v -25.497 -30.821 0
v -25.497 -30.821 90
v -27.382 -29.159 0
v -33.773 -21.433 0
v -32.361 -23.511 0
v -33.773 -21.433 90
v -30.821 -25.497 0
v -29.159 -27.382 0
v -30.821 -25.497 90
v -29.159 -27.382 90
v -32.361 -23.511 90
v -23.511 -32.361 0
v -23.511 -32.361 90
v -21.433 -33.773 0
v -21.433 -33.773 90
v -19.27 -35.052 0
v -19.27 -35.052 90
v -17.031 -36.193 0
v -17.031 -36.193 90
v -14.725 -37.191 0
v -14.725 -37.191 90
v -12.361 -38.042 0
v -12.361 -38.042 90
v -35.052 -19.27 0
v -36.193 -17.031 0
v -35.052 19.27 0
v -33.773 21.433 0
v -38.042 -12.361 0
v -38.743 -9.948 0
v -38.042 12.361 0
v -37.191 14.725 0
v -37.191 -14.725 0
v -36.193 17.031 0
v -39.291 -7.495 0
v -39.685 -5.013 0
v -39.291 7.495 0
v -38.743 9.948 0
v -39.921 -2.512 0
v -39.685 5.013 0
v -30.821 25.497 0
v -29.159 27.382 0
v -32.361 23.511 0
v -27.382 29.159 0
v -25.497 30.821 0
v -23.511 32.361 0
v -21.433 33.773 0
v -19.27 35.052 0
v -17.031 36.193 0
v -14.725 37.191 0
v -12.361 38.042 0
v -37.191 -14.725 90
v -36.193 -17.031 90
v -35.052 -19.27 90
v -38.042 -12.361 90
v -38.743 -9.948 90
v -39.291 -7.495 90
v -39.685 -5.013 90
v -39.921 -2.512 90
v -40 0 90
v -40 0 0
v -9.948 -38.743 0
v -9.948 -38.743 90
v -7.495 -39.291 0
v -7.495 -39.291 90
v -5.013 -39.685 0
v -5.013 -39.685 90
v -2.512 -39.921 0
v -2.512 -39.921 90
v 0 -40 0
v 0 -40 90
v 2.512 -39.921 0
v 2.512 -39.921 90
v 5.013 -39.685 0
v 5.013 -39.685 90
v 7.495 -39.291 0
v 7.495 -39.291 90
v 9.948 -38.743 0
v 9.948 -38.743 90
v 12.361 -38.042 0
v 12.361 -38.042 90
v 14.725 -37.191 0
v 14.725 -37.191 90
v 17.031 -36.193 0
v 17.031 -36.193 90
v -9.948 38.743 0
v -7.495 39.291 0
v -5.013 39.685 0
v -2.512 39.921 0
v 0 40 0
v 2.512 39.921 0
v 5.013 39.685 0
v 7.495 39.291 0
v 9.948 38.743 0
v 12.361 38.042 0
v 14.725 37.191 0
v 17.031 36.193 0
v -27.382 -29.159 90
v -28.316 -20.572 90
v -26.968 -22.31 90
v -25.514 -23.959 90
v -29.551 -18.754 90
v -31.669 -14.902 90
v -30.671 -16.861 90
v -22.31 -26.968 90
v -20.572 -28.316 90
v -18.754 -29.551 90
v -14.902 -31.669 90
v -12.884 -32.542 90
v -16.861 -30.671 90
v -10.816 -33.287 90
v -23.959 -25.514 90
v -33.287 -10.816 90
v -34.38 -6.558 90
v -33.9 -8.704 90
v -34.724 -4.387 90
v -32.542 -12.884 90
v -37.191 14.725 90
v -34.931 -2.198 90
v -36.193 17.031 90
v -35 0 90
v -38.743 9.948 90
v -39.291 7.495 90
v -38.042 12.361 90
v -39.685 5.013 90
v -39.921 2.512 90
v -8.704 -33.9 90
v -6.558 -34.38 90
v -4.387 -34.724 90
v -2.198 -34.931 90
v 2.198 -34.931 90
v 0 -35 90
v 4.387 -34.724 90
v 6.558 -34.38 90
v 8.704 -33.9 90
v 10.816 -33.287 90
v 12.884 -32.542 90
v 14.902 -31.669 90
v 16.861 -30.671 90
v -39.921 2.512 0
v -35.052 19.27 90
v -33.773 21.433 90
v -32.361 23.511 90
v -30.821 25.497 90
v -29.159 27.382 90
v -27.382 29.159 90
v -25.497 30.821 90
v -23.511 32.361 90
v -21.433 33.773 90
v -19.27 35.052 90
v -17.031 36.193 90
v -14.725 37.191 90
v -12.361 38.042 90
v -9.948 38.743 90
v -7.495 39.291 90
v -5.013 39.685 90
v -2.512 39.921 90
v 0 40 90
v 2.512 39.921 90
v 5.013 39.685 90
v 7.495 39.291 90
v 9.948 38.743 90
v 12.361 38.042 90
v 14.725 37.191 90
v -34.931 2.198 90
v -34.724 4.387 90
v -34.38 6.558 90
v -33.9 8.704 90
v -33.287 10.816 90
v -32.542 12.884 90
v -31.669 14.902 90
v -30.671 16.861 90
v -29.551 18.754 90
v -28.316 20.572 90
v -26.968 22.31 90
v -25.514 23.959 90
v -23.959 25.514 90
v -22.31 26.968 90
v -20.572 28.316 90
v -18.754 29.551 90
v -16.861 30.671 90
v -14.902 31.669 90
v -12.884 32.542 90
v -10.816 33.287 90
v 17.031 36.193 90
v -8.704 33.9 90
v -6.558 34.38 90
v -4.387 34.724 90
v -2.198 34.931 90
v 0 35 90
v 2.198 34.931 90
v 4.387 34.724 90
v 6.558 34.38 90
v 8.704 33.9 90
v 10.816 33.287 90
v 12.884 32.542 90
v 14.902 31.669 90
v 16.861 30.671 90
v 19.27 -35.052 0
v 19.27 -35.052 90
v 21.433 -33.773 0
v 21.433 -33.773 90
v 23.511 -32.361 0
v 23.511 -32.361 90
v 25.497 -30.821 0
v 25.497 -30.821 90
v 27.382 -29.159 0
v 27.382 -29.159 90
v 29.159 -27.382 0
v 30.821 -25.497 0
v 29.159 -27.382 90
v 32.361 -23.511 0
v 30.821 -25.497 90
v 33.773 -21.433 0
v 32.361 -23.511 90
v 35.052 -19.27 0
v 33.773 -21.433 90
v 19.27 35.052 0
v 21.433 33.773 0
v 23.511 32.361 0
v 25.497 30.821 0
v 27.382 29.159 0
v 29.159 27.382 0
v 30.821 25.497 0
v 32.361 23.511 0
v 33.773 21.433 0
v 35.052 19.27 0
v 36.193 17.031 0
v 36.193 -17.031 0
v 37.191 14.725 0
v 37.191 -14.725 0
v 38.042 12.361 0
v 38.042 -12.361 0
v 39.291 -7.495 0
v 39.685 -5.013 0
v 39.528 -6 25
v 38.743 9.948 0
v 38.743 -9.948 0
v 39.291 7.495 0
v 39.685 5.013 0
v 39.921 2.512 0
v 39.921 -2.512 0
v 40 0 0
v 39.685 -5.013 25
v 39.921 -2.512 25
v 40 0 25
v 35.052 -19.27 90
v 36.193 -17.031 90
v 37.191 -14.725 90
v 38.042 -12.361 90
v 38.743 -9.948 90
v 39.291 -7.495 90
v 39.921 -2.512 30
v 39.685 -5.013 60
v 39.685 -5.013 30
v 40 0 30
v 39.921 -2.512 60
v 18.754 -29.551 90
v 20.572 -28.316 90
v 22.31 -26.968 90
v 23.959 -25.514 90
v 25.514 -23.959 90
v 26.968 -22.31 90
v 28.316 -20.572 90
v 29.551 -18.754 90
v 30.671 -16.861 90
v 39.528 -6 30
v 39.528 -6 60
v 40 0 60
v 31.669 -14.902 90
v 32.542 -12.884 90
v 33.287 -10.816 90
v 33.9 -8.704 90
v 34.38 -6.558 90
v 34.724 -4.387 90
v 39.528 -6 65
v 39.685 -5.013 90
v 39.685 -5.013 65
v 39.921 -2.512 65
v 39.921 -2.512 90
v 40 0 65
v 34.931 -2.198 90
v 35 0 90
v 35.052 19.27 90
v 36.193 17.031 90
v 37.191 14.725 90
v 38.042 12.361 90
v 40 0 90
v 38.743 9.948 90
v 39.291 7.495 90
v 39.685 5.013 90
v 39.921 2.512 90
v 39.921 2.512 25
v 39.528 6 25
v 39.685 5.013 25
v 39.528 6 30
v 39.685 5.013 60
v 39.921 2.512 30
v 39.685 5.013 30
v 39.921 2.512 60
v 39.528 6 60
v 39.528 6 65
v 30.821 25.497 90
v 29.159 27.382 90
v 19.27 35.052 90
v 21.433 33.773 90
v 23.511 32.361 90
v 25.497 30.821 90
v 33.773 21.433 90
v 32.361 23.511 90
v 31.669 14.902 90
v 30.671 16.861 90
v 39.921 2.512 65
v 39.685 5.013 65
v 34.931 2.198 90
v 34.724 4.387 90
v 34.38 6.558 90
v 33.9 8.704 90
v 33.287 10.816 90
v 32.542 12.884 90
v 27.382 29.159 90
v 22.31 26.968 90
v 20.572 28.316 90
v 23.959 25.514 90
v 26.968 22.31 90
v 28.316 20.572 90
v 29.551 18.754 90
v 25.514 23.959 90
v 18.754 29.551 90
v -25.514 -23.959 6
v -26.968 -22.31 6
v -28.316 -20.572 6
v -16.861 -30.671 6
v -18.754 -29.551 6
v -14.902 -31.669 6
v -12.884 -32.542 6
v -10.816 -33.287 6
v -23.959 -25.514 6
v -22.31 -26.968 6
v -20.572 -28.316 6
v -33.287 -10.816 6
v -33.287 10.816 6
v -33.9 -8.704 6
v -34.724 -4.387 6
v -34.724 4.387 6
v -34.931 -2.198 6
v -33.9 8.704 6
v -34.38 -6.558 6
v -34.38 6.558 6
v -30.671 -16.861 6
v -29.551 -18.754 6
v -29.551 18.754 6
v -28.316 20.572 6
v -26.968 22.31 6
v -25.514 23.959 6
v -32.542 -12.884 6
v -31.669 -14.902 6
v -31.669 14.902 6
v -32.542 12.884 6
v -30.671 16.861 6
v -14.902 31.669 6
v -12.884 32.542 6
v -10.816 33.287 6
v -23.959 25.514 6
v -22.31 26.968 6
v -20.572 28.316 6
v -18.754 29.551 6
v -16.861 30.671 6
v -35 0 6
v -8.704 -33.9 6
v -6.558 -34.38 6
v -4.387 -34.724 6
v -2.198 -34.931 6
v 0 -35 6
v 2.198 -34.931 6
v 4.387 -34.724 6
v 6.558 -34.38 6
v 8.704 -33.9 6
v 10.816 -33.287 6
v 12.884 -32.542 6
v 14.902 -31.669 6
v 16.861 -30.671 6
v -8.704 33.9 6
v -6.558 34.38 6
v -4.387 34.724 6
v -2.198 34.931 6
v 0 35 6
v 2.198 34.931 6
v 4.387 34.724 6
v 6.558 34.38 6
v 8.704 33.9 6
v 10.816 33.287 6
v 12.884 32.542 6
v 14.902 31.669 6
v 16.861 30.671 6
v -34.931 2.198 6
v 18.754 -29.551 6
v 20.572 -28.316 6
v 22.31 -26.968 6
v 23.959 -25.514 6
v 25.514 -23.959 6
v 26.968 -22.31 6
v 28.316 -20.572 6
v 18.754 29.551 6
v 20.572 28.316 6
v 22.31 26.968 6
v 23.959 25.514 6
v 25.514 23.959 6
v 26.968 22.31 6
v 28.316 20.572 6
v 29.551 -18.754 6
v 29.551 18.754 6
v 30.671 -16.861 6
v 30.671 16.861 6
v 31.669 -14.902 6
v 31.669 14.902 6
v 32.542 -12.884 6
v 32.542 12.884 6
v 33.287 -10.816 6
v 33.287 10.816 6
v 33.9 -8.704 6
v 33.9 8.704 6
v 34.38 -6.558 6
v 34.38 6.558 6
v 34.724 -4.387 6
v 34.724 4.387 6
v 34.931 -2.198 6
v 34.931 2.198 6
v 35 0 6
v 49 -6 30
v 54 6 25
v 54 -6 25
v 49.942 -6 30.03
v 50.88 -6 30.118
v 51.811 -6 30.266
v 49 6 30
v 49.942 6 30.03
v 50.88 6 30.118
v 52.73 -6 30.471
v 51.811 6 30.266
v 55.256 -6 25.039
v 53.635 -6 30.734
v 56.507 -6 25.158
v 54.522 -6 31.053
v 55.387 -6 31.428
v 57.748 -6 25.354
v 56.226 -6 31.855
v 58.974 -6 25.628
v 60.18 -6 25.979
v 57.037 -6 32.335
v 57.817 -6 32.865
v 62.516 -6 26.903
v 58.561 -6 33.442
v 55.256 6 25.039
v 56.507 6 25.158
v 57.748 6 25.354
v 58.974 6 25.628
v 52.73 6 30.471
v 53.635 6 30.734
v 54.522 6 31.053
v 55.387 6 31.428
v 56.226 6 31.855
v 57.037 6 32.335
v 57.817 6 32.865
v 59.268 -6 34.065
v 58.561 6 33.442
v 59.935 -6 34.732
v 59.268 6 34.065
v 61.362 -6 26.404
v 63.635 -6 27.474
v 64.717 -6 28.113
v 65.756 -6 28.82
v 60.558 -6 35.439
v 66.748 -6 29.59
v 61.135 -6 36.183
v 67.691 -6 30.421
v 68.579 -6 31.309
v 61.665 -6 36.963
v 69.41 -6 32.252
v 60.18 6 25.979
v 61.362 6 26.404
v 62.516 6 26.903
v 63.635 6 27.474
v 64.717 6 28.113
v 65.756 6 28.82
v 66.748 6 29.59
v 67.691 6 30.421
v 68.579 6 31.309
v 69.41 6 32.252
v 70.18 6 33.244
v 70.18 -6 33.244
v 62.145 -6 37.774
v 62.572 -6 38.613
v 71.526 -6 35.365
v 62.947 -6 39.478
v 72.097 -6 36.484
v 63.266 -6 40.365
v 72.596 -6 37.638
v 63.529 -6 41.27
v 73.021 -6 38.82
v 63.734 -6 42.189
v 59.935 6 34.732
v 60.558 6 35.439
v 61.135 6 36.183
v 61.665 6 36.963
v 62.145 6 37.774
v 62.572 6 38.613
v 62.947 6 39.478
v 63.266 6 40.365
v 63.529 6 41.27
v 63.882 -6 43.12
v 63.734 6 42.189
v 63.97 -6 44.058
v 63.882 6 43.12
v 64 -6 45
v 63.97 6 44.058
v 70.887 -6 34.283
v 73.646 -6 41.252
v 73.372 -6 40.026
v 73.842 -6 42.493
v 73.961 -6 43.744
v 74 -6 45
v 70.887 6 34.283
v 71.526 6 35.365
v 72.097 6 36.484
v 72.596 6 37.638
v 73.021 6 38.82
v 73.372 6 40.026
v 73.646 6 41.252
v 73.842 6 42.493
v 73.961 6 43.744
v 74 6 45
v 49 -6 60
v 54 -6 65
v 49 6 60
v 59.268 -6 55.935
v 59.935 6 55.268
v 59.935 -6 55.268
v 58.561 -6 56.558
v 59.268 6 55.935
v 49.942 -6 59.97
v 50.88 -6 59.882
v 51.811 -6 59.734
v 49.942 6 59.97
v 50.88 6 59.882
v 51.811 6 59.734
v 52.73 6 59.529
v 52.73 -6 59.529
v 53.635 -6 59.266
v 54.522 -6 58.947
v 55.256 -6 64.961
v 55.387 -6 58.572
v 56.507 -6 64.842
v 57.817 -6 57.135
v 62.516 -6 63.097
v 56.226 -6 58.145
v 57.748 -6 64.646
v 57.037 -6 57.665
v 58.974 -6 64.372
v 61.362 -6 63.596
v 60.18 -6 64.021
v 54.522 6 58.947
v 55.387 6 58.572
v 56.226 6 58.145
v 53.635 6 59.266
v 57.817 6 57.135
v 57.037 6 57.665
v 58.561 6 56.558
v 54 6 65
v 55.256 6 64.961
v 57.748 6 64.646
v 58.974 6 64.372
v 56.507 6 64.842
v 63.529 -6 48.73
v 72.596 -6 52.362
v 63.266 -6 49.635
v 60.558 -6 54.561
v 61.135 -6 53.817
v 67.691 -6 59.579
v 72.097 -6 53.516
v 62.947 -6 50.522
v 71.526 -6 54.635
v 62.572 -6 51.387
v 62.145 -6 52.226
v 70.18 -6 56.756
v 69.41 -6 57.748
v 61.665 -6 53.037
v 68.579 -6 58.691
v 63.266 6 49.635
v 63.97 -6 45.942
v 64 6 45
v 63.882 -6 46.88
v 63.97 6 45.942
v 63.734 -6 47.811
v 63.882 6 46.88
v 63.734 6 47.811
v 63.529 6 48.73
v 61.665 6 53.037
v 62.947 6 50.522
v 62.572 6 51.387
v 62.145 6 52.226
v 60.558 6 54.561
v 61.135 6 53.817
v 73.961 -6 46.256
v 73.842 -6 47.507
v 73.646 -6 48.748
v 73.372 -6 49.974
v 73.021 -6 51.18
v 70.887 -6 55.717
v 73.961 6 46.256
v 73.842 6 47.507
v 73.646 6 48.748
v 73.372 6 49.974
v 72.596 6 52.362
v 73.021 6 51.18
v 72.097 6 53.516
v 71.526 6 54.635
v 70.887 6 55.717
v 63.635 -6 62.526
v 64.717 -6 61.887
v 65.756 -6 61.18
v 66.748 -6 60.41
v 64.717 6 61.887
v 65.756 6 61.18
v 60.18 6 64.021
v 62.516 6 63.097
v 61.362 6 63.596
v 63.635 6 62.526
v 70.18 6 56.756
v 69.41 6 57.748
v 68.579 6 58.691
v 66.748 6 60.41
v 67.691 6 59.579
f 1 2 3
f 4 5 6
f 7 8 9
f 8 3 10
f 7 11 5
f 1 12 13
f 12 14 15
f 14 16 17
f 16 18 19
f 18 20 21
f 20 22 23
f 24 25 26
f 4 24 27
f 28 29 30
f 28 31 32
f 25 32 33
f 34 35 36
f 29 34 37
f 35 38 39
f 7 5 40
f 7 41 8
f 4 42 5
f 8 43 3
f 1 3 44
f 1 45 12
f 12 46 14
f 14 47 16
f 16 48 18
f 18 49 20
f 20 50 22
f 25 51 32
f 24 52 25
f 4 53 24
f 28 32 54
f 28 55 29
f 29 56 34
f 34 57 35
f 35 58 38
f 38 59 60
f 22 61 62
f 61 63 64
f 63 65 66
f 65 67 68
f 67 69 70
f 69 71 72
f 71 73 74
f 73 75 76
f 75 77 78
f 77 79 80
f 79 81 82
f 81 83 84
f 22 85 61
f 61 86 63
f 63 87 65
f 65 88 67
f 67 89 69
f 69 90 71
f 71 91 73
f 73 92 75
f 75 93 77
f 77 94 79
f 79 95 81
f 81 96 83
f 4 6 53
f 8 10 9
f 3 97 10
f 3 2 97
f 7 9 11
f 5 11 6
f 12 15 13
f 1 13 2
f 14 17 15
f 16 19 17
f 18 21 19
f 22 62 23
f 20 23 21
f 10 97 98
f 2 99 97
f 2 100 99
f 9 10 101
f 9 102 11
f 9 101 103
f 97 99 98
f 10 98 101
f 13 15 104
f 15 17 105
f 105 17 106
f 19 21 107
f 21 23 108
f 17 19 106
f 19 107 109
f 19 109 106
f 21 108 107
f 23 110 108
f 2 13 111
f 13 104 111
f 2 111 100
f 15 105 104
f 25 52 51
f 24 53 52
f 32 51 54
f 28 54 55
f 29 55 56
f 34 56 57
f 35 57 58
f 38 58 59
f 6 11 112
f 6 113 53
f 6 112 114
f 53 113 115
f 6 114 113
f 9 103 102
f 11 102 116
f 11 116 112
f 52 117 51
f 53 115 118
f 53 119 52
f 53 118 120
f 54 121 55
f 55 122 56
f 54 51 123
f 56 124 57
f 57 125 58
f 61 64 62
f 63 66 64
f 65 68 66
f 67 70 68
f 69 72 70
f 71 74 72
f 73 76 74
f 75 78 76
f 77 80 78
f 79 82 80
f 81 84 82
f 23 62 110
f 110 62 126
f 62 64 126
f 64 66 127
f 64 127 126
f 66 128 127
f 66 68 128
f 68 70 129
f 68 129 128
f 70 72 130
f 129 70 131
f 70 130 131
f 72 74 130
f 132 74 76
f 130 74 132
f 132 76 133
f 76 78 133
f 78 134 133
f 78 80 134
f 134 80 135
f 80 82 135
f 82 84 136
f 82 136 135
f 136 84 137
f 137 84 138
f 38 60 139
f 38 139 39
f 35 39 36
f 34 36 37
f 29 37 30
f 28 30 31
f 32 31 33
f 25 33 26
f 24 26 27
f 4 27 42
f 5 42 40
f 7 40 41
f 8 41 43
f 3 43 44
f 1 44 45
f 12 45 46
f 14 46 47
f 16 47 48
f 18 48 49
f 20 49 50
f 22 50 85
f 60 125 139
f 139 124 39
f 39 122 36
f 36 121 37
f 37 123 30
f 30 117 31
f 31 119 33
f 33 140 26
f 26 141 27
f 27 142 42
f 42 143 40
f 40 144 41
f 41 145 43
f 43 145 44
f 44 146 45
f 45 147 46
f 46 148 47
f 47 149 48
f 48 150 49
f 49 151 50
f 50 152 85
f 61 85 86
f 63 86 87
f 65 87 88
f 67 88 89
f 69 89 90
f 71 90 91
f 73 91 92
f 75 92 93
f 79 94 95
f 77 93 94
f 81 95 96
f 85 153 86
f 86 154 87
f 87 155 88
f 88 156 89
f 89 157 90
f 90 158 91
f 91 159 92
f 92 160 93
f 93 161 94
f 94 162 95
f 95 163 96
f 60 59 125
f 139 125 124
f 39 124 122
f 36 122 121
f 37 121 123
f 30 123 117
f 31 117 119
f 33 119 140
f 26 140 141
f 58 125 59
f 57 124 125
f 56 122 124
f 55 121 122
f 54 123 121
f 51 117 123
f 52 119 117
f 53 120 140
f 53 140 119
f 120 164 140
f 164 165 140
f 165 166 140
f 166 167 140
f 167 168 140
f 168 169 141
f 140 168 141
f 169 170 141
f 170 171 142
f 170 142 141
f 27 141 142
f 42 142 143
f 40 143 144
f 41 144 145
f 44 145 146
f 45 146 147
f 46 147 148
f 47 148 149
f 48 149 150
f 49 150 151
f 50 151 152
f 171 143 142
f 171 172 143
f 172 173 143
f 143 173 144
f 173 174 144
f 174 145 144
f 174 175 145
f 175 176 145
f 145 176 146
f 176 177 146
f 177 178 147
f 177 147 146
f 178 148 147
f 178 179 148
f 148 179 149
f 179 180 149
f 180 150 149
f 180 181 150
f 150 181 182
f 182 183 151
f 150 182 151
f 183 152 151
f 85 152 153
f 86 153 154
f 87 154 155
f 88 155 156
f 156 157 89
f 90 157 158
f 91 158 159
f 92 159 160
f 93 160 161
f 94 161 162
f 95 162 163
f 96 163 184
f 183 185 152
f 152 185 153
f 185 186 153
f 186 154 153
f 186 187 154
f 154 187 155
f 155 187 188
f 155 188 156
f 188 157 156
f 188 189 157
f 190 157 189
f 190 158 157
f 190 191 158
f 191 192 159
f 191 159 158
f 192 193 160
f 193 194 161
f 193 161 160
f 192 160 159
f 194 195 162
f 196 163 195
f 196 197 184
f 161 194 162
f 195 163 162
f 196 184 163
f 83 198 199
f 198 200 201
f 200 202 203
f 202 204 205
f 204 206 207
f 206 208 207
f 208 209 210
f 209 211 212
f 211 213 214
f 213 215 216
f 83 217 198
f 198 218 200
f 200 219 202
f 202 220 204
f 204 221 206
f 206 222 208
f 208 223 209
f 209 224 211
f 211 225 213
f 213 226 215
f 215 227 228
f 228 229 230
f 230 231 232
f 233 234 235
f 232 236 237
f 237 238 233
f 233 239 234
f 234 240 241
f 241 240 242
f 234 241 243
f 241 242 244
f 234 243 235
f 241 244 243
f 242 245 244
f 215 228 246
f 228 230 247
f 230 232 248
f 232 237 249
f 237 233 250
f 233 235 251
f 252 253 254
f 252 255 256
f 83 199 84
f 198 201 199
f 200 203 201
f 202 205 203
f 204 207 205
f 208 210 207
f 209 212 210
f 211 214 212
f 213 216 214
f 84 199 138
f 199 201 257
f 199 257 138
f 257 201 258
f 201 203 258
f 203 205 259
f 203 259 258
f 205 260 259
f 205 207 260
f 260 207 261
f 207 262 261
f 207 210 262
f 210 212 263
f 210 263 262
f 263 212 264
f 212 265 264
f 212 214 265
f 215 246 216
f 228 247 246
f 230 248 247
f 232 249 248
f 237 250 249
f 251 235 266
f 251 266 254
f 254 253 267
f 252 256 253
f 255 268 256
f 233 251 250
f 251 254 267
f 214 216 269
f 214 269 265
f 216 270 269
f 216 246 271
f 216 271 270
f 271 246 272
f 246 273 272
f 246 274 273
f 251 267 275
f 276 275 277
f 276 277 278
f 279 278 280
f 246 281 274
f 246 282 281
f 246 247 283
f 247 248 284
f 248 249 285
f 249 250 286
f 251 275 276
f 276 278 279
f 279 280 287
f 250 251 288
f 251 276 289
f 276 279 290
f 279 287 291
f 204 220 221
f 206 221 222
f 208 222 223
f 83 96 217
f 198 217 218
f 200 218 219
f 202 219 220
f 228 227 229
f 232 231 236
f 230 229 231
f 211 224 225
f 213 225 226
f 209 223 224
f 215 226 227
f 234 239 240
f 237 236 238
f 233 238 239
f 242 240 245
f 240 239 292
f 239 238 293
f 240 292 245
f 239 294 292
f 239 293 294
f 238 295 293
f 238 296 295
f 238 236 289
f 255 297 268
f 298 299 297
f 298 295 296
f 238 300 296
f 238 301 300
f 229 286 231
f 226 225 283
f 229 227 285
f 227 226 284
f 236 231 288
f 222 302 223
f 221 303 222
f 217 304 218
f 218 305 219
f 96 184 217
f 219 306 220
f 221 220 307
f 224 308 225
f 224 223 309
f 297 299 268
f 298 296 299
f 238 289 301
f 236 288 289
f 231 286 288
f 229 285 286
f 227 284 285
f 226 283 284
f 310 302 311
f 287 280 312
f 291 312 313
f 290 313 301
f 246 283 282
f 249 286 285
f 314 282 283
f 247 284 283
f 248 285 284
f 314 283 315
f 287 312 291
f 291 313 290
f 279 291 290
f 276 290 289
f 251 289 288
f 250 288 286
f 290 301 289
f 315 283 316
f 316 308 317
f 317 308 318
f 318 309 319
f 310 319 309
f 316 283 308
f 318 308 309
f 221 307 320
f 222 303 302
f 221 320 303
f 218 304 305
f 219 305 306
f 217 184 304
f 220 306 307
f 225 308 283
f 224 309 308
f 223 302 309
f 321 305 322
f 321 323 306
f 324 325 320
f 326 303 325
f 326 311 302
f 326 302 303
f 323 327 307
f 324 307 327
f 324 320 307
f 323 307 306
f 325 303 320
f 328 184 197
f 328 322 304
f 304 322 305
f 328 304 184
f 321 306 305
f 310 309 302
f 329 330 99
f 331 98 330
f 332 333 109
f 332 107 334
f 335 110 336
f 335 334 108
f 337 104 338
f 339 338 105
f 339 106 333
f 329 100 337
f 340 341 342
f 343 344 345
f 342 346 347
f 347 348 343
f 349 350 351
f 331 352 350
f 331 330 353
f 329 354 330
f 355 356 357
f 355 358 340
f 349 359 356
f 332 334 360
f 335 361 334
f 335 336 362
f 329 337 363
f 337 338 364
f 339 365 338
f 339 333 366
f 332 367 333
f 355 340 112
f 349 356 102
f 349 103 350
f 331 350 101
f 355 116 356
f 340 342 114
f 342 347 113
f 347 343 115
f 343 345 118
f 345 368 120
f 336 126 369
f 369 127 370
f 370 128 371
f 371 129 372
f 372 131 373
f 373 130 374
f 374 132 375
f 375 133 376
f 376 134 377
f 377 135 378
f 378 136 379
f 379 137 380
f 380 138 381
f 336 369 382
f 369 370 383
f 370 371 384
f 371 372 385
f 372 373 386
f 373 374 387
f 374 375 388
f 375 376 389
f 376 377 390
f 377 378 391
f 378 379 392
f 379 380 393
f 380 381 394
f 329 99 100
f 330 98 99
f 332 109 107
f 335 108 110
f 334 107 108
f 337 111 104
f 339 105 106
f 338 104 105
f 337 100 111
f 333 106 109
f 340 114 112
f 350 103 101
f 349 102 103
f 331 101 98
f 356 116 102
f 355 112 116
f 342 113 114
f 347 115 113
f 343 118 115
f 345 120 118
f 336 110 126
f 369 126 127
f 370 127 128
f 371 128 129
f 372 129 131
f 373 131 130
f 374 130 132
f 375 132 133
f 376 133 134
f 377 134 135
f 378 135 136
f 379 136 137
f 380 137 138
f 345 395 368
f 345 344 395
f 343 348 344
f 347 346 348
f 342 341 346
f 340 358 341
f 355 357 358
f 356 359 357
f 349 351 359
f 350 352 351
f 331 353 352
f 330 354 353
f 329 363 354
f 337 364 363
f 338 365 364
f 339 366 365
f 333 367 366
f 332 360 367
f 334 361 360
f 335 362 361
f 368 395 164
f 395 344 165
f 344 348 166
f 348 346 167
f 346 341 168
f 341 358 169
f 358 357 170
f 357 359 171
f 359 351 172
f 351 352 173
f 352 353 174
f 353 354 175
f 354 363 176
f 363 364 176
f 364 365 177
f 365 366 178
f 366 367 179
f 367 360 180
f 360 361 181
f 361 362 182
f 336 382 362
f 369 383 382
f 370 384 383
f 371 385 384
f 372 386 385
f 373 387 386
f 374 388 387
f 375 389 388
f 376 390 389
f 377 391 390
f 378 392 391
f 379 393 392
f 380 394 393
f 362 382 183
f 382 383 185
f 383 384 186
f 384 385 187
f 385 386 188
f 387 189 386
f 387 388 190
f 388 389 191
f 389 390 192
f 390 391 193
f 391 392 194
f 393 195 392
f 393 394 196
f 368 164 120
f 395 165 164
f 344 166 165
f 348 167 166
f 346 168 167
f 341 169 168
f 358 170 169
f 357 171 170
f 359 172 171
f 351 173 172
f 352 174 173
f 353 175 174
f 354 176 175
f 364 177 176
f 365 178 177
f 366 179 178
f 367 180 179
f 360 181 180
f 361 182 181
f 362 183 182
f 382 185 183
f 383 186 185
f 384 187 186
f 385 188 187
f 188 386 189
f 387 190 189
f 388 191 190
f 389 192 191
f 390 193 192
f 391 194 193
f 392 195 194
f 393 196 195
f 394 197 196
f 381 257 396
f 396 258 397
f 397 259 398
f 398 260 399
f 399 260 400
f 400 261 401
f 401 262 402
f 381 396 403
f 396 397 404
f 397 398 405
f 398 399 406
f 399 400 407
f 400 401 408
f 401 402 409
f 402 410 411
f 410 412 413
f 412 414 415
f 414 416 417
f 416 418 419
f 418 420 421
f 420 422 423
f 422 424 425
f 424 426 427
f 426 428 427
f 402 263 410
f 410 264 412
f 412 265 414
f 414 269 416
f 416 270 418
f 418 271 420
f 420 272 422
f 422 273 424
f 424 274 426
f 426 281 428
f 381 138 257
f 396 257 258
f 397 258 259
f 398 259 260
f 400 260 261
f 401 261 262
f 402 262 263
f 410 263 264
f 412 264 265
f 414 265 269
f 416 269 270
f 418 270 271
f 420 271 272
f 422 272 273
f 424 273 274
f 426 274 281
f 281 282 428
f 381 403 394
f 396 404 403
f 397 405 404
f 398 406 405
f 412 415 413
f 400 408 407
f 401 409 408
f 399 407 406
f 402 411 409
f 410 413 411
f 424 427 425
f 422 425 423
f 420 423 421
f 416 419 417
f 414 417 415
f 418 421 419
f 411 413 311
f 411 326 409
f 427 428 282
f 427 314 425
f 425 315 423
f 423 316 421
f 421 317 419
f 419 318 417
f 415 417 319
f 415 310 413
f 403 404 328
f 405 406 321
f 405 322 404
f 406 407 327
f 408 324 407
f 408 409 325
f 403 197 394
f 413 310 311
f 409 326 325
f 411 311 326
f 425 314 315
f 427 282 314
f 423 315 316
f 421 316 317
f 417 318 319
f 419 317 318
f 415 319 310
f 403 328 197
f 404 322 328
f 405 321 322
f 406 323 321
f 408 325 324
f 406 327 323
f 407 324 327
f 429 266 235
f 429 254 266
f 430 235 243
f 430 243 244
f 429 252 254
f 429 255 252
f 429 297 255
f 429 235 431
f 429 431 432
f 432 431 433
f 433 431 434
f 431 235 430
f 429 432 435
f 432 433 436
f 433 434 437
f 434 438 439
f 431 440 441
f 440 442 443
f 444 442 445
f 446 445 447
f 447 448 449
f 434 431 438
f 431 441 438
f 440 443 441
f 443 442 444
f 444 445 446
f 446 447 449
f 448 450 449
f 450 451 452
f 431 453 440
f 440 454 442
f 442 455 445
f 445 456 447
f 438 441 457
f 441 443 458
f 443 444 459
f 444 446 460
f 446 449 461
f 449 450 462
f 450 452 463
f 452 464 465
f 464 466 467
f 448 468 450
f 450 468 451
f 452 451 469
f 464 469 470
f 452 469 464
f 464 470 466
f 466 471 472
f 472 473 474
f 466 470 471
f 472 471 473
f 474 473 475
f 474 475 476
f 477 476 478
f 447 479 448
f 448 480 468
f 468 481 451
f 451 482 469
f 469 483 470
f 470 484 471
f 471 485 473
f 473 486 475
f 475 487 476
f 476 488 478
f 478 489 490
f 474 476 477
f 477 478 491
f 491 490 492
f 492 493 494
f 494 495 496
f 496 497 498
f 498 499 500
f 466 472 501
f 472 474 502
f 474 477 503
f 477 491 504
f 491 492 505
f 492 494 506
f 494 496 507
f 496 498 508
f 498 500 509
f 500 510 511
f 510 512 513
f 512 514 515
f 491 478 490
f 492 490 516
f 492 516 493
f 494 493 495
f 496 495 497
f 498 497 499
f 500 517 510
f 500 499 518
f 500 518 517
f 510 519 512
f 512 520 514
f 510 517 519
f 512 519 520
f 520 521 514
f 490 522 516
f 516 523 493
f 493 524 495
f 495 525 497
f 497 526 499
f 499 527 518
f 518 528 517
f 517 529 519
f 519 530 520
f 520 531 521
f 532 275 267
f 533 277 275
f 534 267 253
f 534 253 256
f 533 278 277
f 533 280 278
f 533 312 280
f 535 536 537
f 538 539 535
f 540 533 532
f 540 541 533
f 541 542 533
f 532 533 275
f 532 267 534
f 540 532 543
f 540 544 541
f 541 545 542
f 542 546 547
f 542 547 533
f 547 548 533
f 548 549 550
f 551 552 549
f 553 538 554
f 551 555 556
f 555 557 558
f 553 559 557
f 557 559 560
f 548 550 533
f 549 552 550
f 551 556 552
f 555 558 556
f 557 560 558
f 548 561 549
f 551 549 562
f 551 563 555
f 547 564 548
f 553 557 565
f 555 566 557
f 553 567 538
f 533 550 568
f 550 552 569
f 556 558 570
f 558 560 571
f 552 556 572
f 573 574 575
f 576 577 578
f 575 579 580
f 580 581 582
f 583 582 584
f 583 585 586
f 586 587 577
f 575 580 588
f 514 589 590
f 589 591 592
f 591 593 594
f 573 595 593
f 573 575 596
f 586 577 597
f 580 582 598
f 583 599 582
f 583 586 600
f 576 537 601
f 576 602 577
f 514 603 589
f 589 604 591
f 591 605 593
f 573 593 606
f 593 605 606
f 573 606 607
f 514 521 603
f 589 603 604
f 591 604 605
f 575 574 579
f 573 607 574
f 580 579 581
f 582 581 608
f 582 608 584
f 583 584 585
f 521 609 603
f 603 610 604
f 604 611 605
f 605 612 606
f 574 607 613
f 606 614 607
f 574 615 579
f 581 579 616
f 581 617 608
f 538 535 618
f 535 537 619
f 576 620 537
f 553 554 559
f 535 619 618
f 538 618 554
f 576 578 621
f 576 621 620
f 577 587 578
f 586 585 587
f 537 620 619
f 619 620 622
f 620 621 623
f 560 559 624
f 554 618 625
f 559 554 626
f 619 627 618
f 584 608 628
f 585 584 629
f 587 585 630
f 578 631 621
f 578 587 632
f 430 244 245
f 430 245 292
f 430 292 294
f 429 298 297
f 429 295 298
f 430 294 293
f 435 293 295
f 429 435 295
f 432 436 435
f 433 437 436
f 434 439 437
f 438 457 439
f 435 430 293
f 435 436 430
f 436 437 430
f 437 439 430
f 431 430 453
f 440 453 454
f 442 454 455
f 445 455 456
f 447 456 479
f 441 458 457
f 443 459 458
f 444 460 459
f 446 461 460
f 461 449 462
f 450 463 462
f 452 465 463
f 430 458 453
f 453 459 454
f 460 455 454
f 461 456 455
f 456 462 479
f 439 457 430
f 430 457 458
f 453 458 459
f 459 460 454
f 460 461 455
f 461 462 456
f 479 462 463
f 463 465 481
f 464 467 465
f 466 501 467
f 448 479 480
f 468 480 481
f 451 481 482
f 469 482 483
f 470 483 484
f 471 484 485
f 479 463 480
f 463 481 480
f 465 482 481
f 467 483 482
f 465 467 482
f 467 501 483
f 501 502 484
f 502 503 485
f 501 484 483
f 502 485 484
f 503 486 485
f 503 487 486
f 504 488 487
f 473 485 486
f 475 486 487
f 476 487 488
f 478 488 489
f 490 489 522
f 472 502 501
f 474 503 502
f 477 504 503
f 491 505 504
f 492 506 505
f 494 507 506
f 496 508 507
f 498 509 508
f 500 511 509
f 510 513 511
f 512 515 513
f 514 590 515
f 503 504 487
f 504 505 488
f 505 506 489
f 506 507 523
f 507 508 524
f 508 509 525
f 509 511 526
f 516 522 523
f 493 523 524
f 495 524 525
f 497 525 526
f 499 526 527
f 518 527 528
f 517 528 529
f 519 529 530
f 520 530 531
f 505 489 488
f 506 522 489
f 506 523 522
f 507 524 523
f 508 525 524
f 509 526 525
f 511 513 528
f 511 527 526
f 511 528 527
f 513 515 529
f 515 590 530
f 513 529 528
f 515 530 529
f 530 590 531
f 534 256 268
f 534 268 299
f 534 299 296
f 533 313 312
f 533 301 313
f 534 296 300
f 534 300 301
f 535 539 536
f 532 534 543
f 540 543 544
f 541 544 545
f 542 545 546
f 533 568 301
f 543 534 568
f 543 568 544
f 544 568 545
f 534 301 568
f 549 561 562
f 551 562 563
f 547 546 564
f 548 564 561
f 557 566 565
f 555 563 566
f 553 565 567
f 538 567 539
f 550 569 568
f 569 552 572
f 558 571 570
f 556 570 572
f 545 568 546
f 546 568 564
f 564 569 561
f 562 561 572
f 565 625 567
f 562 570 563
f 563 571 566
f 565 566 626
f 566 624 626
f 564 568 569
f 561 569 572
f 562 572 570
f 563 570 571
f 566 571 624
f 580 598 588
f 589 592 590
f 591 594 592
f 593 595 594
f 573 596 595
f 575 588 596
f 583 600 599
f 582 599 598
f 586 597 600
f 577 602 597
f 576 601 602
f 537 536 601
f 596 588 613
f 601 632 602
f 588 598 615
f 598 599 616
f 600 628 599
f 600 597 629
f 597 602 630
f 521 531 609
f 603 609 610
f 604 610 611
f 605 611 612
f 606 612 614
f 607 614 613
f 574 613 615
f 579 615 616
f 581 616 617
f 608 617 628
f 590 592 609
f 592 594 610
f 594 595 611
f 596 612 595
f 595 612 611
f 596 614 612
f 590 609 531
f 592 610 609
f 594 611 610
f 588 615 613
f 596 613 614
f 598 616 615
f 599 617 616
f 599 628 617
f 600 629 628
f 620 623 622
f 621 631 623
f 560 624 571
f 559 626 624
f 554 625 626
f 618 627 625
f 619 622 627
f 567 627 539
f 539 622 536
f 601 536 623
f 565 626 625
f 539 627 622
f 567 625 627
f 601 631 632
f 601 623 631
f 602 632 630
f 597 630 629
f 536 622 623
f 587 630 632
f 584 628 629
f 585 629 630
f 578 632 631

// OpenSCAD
// Parameters
outer_diameter = 80;
inner_diameter = 70;
height = 90;
bottom_thickness = 6;

handle_inner_height = 30;
handle_inner_width = 25;
handle_wall = 5;
handle_depth = 12;
handle_overlap = 1;
$fn = 100;

// Mug body
module mug_body() {
    difference() {
        cylinder(h = height, r = outer_diameter / 2);
        translate([0, 0, bottom_thickness])
            cylinder(h = height - bottom_thickness, r = inner_diameter / 2);
    }
}

// 2D D-shape for handle in the X (radial) and Y (vertical) plane, centered vertically
module handle_shape2d() {
    outer_h = handle_inner_height + 2 * handle_wall;
    inner_h = handle_inner_height;
    outer_r = outer_h / 2;
    inner_r = inner_h / 2;
    outer_w_total = handle_inner_width + 2 * handle_wall;
    inner_w_total = handle_inner_width;
    outer_w_str = outer_w_total - outer_r;
    inner_w_str = inner_w_total - inner_r;
    difference() {
        intersection() {
            union() {
                translate([0, -outer_h / 2])
                    square([outer_w_str, outer_h], center = false);
                translate([outer_w_str, 0])
                    circle(r = outer_r);
            }
            translate([0, -outer_h / 2])
                square([outer_w_total, outer_h], center = false);
        }
        intersection() {
            union() {
                translate([0, -inner_h / 2])
                    square([inner_w_str, inner_h], center = false);
                translate([inner_w_str, 0])
                    circle(r = inner_r);
            }
            translate([0, -outer_h / 2])
                square([outer_w_total, outer_h], center = false);
        }
    }
}

// Handle 3D
module handle() {
    translate([outer_diameter / 2 - handle_overlap, 0, height / 2])
        rotate([-90, 0, 0])
            linear_extrude(height = handle_depth, center = true, convexity = 10)
                handle_shape2d();
}

// Assemble mug and handle
union() {
    mug_body();
    handle();
}
